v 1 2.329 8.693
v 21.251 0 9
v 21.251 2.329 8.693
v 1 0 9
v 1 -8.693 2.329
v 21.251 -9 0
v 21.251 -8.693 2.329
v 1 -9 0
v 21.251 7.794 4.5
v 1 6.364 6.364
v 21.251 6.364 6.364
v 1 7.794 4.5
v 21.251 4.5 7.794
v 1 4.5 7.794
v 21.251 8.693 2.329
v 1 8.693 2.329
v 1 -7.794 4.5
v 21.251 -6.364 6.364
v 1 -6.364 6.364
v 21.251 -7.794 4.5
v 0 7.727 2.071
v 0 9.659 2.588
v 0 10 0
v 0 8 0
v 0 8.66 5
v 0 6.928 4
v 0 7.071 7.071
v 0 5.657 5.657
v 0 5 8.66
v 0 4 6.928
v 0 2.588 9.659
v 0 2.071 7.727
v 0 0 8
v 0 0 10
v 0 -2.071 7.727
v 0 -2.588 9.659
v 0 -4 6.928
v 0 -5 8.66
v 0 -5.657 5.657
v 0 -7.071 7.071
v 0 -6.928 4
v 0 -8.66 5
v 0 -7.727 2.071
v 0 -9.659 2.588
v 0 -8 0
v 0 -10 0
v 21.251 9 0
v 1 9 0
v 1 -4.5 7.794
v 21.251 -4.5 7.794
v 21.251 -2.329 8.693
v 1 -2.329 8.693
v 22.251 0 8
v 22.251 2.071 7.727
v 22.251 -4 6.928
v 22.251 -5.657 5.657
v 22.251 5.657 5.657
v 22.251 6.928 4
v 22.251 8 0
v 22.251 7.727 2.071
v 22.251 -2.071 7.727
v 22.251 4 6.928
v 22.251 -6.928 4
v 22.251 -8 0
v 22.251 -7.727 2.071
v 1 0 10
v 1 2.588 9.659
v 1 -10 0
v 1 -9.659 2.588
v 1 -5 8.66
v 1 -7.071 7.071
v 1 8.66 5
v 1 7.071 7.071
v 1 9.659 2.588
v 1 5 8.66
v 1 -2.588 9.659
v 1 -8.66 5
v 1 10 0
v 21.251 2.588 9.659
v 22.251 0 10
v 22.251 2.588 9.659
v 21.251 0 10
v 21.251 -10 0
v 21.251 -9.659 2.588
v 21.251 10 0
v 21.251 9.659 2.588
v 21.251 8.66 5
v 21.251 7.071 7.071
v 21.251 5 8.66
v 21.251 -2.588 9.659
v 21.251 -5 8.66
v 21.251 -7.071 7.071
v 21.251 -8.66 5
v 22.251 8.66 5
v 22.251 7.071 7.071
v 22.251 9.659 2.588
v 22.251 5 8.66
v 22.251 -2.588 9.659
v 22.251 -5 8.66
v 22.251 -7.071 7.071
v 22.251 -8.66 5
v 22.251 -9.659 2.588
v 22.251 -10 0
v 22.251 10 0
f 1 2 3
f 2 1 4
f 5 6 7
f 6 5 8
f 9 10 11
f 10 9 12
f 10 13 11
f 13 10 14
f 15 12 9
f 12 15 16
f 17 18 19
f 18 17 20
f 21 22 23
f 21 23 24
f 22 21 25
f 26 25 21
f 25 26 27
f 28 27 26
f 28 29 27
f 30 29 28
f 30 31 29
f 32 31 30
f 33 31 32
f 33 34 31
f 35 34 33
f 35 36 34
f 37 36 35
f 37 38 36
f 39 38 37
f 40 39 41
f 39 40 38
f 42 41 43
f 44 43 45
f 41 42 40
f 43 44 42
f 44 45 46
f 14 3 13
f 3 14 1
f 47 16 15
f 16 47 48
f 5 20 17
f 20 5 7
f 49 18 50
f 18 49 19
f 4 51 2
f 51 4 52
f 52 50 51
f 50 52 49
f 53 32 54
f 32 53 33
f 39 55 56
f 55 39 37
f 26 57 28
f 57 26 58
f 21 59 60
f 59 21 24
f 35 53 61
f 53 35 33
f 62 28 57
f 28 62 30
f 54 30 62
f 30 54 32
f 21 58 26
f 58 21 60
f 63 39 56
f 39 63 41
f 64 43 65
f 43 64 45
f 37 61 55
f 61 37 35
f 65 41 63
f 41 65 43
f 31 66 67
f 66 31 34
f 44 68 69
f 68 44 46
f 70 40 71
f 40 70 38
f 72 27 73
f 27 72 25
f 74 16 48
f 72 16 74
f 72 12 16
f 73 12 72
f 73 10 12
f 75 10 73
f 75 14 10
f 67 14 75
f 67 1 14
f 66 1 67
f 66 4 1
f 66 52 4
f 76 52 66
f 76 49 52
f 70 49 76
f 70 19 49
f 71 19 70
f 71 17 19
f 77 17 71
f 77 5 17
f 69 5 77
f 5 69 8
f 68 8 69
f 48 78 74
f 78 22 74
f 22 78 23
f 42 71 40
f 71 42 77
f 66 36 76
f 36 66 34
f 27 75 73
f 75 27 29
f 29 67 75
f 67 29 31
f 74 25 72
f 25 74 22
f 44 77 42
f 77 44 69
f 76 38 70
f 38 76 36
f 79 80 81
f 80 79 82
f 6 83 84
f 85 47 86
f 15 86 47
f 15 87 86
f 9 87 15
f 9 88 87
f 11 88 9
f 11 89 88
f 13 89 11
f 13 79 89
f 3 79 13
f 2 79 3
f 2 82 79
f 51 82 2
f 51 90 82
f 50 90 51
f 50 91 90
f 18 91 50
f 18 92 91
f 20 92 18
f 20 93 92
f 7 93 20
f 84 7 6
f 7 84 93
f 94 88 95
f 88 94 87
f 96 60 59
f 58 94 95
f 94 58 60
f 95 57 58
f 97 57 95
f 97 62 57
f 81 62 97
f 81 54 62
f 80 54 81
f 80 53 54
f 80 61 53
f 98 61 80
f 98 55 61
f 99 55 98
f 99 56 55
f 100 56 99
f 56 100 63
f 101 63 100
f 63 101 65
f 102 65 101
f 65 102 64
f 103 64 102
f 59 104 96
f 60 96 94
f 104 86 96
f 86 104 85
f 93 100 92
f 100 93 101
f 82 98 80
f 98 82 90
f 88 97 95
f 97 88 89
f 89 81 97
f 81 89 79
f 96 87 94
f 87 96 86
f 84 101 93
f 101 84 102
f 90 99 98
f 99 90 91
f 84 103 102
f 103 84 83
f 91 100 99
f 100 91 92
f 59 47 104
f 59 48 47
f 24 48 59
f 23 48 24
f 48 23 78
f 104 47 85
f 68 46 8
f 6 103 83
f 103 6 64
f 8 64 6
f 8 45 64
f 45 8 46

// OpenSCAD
// file: ../build_environments.scad
// build_environments.scad: modules to build level sections
//

module pool(diameter=10.0, wall_height=2.0, step_width=3.0, connections=[])
{
    difference() {
        union() {
        difference() {
            cylinder(h=0.5,r1=diameter+step_width,r2=diameter+step_width,$fn=48);
            translate([0,0,-0.1])
                cylinder(h=0.7,r1=diameter,r2=diameter,$fn=48);
        }
        difference() {
            cylinder(h=wall_height,r1=diameter+step_width+1.0,r2=diameter+step_width+1.0,$fn=48);
            translate([0,0,-0.1])
                cylinder(h=wall_height+0.2,r1=diameter+step_width,r2=diameter+step_width,$fn=48);
        }
        }
    
        for (c = connections)
        {
            rotate([0,90,0]) {
                angle = atan2(c[1],c[0]);
                rotate([-angle,0,0]) {
                    cylinder(h=diameter+5.0,r1=c[2],r2=c[2],$fn=48);
                }
            }
        }
    }
}

module straight(length=10.0, width=2.0, dy1=0.0, dy2=0.0, dz=0.0)
{
    dims = [0, 0, 0, 0, 0, (dz/length)];
    matrix = [
        [ 1, dims[0], dims[1], 0 ],
        [ dims[2], 1, dims[4], 0 ],
        [ dims[5], dims[3], 1, 0 ],
        [ 0, 0, 0, 1 ]
    ];
    multmatrix(matrix)
    difference() {
        translate([dy1,0,0])
        union() {
            rotate([0,90,0]) {
                difference() {
                    cylinder(h=(length-dy1-dy2),r1=width+1.0,r2=width+1.0,$fn=24);
                    translate([0,0,-0.1])
                        cylinder(h=(length-dy1-dy2+0.2),r1=width,r2=width,$fn=24);
                }
                difference() {
                    cylinder(h=1.0,r1=width+2.0,r2=width+2.0,$fn=24);
                    translate([0,0,-0.1])
                        cylinder(h=1.2,r1=width,r2=width,$fn=24);
                }
                translate([0,0,(length-dy1-dy2)-1.0]) {
                    difference() {
                        cylinder(h=1.0,r1=width+2.0,r2=width+2.0,$fn=24);
                        translate([0,0,-0.1])
                            cylinder(h=1.2,r1=width,r2=width,$fn=24);
                    }
                }
            }
        }
        translate([0,0,-(2*width+4.0)/2])
            cube([3*length,3*length,2*width+4.0],center=true);
    }
}

module curve(p0=[0,0], center=[0,0], dir=1, angle=0.0, width=2.0)
{
    radius = sqrt((p0[0]-center[0])*(p0[0]-center[0]) + (p0[1]-center[1])*(p0[1]-center[1]));
    if (dir == 0) {
        difference() {
            rotate([0,0,-90])
            difference() {
                rotate_extrude(angle = angle, convexity = 10, $fn=32)
                    translate([radius, 0, 0])
                        circle(r = width+1.0,$fn=24);
                rotate([0,0,-1.0])
                    rotate_extrude(angle = angle+2.0, convexity = 10, $fn=32)
                        translate([radius, 0, 0])
                            circle(r = width,$fn=24);
            }
            translate([0,0,-(2*width+4.0)/2])
                cube([5*radius,5*radius,2*width+4.0],center=true);
        }
    }
    else {
        difference() {
            rotate([0,0,90])
            difference() {
                rotate_extrude(angle = -angle, convexity = 10, $fn=32)
                    translate([radius, 0, 0])
                        circle(r = width+1.0,$fn=24);
                rotate([0,0,1.0])
                    rotate_extrude(angle = -angle-2.0, convexity = 10, $fn=32)
                        translate([radius, 0, 0])
                            circle(r = width,$fn=24);
            }
            translate([0,0,-(2*width+4.0)/2])
                cube([5*radius,5*radius,2*width+4.0],center=true);
        }
    }

}

// test pool
//pool(diameter=12.0000, wall_height=3.0000, step_width=3.0000, connections=[[0.0000,-26.0000,2.0000], [23.6074,0.0000,2.0000]]);

// test straight, slope
//straight(length=26.0000, width=2.0000, dy1=11.8322, dy2=6.7082, dz=0.0000);
//straight(length=29.1549, width=12.0000, dy1=0.0000, dy2=0.0000, dz=-15.0000);

// test curve
//curve(p0=[23.6074, 0.0000], center=[23.6074, 5.0000], dir=0, angle=60.1011, width=2.0000);
//curve(p0=[33.6426, 12.4219], center=[37.9771, 9.9295], dir=1, angle=120.4627, width=2.0000);
// main file
use <../build_environments.scad>;
straight(length=22.2508, width=8.0000, dy1=0.0000, dy2=0.0000, dz=0.0000);
